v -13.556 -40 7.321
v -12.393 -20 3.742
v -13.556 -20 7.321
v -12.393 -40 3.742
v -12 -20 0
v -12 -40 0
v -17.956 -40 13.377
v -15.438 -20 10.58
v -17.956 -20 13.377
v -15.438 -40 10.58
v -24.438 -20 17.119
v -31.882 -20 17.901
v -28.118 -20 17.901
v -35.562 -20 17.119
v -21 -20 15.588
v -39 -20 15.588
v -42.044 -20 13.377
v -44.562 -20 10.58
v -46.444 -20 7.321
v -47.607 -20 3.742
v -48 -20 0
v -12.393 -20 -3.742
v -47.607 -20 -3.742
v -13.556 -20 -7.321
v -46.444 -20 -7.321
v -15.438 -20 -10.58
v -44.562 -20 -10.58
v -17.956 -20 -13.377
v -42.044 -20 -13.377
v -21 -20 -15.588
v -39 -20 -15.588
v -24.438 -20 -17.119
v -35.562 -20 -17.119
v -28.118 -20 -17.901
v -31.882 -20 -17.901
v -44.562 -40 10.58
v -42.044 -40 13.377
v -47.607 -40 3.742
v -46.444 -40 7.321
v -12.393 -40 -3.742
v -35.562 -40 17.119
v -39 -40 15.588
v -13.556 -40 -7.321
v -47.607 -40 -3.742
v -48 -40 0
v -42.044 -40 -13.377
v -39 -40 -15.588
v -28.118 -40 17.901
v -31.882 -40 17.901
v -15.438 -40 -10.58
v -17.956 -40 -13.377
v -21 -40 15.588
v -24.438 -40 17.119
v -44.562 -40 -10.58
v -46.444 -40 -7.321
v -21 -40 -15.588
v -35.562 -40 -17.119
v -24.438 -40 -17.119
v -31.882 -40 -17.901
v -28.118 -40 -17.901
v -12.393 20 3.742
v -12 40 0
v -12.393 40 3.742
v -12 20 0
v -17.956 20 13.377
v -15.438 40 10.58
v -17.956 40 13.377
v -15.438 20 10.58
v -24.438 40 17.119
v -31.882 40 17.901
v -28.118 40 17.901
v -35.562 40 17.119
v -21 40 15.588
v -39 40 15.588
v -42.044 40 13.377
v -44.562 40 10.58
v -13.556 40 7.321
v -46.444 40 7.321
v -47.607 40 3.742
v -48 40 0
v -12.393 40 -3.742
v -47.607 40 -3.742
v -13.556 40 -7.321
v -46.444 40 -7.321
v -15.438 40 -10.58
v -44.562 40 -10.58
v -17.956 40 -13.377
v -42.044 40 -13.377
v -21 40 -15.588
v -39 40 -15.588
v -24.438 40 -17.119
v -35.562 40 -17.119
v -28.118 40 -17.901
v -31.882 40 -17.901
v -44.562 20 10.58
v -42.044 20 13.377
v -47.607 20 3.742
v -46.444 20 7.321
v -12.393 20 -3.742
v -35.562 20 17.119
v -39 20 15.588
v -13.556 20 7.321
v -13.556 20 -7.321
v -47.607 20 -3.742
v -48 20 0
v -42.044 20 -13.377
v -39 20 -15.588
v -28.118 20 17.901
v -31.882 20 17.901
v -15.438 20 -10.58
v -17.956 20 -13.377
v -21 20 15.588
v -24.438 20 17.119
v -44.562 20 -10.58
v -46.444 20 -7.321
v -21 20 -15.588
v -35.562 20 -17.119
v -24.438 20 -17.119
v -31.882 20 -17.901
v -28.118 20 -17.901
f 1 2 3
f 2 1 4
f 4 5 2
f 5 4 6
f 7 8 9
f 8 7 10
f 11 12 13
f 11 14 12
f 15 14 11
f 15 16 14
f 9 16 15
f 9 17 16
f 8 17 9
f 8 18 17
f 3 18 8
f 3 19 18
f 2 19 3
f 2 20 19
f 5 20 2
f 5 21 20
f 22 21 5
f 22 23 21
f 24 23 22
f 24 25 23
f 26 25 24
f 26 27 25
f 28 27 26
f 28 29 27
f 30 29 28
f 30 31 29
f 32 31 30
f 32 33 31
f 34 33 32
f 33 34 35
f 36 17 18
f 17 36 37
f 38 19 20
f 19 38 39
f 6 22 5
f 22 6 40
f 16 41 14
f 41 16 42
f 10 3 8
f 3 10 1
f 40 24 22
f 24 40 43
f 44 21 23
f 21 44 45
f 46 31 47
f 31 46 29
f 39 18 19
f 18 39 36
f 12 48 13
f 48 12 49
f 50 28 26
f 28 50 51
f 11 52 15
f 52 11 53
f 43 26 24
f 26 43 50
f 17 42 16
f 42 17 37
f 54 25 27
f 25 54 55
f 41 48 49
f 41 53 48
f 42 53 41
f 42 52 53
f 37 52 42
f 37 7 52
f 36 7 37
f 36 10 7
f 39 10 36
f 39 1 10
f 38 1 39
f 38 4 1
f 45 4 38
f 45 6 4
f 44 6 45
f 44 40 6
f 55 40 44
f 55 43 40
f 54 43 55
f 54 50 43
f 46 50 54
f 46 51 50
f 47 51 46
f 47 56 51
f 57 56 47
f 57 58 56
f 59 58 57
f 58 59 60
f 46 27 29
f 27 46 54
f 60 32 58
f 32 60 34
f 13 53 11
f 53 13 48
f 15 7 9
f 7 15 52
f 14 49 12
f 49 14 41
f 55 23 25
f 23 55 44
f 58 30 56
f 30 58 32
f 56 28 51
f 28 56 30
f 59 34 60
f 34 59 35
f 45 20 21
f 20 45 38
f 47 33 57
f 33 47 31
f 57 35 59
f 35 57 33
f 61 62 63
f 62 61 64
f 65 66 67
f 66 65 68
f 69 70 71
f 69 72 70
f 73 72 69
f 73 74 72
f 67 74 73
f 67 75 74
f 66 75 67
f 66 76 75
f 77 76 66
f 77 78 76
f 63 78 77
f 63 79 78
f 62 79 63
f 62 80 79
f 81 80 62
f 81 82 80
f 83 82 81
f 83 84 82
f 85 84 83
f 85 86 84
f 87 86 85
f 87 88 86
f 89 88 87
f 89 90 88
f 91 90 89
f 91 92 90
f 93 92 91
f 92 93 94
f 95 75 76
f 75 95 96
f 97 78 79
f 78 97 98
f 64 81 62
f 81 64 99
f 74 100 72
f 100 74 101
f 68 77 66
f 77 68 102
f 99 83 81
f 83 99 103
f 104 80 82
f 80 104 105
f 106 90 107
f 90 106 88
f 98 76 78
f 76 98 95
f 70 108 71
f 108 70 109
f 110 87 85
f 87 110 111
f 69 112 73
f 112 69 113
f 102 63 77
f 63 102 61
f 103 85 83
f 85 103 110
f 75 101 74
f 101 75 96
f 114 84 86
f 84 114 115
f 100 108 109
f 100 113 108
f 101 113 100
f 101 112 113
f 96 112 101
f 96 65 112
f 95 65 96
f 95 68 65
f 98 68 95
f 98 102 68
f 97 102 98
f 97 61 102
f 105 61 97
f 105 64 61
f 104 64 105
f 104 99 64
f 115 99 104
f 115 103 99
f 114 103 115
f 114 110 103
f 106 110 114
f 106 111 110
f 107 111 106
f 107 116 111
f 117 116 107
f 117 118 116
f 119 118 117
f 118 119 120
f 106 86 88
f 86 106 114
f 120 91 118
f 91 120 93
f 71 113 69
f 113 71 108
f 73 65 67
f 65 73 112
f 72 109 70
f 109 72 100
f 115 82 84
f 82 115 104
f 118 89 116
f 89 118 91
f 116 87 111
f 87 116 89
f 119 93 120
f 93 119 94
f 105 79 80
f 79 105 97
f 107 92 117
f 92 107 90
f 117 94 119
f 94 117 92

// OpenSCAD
// Tank dimensions
tank_length = 100;
tank_width = 60;
tank_height = 30;





module wheel( track_width,track_height ){
         translate( [0, track_width/2, 0 ] )
         rotate( [ 90, 0, 0 ] ){
         cylinder( h = track_width, r = track_height / 2 );
    } 
}

module fulltrack( w, h, l ){
    track_width = w;
    track_height = h;
    track_length = l;

    translate( [ -track_length/3,0, 0 ] )
    wheel(track_width,track_height * 1.8);
}

module tracks(){
    track_width = 10;
    track_height = tank_height / 1.5;
    track_length = tank_length * 0.9;

    translate( [ 0, -tank_width / 2, 0 ] )
        fulltrack( 20, tank_height / 1.5, tank_length * 0.9);
    
    
    translate( [ 0, tank_width / 2, 0 ] )
        fulltrack( 20, tank_height / 1.5, tank_length * 0.9);
    
}


tracks();
